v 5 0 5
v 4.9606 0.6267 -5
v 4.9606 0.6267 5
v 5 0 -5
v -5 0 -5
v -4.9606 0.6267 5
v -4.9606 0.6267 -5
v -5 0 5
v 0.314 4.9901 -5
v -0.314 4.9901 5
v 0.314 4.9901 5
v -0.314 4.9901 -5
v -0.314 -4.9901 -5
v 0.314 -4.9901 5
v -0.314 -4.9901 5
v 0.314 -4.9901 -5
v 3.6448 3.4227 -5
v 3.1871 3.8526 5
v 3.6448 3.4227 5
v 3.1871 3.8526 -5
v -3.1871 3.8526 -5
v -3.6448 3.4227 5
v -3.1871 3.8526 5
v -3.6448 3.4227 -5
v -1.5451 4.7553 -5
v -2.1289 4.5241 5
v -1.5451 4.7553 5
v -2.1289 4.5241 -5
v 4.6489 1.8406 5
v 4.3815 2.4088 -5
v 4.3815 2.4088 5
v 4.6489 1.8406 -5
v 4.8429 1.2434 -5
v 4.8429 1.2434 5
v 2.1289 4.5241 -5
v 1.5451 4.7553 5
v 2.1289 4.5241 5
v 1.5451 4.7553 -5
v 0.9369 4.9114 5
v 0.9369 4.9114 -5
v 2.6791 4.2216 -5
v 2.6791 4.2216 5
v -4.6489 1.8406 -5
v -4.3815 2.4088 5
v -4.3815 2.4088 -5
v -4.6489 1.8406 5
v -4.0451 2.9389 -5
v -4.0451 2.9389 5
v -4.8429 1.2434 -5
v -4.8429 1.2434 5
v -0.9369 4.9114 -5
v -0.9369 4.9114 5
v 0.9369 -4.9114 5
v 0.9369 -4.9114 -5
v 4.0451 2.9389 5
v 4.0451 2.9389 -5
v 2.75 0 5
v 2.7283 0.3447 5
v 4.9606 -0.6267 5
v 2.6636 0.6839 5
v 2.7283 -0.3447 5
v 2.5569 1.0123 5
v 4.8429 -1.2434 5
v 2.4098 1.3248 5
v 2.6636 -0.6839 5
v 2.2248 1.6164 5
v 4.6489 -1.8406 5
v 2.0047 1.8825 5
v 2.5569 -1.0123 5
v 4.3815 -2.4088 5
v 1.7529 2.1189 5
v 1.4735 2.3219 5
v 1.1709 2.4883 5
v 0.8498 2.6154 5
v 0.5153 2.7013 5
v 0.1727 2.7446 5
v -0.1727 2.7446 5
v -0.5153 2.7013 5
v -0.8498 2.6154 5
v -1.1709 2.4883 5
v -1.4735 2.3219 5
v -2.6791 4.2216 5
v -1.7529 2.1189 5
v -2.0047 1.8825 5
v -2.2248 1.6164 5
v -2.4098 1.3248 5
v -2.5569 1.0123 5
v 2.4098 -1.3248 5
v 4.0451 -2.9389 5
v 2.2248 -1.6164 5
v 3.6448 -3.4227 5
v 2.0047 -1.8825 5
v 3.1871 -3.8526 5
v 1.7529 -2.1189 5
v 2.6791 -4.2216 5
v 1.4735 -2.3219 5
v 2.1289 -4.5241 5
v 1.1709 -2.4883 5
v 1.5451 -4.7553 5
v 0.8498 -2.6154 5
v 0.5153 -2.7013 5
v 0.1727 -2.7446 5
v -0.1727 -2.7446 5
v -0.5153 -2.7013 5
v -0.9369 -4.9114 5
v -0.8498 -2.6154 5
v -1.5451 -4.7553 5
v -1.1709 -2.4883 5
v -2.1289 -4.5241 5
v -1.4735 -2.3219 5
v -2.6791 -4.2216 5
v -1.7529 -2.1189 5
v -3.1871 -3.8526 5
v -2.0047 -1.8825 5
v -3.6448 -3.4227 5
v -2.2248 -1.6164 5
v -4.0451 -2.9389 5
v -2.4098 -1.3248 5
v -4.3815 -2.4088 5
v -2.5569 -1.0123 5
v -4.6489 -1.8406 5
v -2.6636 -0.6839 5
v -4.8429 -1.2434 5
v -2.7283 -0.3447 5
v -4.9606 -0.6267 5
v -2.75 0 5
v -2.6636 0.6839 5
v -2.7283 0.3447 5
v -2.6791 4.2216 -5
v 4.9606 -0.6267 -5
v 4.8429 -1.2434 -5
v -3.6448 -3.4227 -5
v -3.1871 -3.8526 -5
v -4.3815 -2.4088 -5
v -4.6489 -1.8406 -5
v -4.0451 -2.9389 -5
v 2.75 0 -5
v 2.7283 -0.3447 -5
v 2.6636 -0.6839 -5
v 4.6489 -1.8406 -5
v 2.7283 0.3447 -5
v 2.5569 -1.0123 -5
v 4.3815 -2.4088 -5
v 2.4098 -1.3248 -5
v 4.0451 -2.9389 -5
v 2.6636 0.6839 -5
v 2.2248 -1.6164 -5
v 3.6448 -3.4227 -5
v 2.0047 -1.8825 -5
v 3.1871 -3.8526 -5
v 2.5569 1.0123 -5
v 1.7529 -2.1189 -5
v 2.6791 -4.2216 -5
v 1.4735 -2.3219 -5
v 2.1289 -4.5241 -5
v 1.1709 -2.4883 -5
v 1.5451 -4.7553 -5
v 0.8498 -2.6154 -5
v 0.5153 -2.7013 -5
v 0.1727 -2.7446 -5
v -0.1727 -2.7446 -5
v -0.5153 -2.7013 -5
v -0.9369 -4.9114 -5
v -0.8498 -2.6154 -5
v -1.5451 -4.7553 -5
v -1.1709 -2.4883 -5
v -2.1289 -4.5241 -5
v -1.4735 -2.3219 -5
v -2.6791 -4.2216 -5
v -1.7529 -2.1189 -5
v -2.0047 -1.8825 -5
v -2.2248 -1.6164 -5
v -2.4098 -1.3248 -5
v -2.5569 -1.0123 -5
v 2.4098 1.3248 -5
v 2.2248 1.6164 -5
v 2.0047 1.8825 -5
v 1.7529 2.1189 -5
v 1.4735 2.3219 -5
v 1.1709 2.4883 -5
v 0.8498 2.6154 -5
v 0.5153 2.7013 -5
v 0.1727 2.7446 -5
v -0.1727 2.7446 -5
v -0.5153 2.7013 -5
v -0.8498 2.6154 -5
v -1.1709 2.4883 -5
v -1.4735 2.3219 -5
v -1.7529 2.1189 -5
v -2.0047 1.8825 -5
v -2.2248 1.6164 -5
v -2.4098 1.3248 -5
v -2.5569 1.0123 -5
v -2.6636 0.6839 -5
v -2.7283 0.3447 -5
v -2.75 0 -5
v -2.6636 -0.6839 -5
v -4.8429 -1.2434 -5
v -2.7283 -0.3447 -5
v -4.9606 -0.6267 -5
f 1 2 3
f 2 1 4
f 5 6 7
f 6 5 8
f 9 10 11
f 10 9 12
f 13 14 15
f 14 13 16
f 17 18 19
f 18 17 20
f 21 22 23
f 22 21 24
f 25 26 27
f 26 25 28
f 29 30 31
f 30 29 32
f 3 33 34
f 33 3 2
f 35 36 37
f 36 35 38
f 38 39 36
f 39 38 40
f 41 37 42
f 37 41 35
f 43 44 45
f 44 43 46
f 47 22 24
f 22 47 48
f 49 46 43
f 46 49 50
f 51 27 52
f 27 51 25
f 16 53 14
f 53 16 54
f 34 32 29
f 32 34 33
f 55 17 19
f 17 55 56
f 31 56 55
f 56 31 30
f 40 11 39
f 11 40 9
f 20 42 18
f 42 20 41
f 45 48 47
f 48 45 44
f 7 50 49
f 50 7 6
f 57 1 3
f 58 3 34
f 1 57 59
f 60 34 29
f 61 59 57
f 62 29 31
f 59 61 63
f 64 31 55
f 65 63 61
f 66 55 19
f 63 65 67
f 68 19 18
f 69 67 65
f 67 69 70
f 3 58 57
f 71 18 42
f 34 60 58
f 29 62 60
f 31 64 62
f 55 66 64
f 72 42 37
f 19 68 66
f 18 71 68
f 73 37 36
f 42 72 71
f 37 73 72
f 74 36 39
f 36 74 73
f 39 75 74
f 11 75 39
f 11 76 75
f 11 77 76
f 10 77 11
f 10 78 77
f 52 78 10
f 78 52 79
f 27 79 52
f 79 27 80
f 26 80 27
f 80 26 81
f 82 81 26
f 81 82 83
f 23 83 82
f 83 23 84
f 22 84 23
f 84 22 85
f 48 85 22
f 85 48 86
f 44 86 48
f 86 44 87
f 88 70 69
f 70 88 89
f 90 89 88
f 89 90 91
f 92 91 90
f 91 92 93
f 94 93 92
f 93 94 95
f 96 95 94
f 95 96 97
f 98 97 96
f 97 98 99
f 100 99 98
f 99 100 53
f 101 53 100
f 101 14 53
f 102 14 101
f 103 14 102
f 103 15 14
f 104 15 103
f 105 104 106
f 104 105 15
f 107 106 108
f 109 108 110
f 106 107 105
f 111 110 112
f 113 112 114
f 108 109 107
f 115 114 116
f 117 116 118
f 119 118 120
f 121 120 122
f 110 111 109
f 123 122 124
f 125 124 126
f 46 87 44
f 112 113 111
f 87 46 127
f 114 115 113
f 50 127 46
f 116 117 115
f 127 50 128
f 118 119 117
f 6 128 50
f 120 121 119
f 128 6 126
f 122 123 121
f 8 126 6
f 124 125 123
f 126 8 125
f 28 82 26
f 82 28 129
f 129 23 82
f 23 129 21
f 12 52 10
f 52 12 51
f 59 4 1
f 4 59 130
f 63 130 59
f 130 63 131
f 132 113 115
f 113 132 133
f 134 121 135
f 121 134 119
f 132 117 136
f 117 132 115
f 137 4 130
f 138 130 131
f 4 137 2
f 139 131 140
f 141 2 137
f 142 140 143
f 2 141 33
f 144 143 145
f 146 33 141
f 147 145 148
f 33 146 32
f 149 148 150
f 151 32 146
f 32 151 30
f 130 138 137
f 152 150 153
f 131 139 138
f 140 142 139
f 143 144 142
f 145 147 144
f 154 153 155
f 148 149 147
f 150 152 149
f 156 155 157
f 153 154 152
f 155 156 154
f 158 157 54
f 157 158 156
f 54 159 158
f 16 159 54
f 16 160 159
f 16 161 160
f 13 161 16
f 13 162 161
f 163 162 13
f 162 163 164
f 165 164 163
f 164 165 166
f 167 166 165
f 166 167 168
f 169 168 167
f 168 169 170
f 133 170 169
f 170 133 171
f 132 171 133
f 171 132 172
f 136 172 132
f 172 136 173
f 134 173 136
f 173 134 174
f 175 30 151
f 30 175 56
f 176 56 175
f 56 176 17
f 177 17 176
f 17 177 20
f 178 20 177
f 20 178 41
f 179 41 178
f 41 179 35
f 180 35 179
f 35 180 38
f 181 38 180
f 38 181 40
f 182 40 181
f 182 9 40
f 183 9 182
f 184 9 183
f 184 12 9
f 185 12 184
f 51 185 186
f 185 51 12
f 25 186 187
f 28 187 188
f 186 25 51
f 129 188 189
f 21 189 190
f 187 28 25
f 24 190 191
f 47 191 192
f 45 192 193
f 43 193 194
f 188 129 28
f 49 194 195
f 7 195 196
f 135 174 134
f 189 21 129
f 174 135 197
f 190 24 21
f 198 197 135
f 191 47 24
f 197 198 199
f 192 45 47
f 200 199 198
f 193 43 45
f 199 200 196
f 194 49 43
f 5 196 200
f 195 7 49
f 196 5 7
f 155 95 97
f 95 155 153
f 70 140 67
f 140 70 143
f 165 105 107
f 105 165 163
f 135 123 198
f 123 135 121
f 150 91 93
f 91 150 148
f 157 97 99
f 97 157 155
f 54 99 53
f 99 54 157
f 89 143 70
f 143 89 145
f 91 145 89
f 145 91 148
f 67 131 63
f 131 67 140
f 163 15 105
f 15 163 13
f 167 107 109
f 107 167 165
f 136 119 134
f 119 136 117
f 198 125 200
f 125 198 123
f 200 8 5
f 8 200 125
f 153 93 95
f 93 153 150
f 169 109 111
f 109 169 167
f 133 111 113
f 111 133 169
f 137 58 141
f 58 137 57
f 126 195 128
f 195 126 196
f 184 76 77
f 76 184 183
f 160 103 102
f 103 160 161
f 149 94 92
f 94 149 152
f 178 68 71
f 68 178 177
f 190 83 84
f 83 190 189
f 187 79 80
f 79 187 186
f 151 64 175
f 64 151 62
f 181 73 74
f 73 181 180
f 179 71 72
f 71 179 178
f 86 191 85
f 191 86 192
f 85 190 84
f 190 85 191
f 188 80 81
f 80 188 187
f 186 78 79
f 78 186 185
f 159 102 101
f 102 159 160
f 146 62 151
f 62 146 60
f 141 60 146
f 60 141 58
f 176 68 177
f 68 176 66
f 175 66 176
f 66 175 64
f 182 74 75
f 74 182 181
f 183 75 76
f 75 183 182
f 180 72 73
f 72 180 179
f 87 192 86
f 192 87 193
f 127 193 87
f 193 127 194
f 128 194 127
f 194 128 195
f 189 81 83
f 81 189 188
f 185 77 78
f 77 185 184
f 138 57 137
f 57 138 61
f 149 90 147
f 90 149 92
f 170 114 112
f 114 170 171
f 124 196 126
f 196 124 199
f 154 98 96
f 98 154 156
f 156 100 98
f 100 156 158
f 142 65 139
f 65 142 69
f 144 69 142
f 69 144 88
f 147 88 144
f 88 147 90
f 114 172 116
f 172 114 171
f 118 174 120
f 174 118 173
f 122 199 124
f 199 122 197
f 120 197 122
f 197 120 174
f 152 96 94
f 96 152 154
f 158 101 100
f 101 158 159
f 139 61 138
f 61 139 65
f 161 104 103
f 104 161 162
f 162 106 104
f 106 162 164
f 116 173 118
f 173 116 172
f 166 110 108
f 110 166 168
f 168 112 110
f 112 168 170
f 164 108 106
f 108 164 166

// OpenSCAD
$fn = 50;


difference() {
	union() {
		translate(v = [0, 0, -5.0000000000]) {
			cylinder(h = 10, r = 5.0000000000);
		}
	}
	union() {
		translate(v = [0, 0, -100.0000000000]) {
			cylinder(h = 200, r = 2.7500000000);
		}
	}
}
